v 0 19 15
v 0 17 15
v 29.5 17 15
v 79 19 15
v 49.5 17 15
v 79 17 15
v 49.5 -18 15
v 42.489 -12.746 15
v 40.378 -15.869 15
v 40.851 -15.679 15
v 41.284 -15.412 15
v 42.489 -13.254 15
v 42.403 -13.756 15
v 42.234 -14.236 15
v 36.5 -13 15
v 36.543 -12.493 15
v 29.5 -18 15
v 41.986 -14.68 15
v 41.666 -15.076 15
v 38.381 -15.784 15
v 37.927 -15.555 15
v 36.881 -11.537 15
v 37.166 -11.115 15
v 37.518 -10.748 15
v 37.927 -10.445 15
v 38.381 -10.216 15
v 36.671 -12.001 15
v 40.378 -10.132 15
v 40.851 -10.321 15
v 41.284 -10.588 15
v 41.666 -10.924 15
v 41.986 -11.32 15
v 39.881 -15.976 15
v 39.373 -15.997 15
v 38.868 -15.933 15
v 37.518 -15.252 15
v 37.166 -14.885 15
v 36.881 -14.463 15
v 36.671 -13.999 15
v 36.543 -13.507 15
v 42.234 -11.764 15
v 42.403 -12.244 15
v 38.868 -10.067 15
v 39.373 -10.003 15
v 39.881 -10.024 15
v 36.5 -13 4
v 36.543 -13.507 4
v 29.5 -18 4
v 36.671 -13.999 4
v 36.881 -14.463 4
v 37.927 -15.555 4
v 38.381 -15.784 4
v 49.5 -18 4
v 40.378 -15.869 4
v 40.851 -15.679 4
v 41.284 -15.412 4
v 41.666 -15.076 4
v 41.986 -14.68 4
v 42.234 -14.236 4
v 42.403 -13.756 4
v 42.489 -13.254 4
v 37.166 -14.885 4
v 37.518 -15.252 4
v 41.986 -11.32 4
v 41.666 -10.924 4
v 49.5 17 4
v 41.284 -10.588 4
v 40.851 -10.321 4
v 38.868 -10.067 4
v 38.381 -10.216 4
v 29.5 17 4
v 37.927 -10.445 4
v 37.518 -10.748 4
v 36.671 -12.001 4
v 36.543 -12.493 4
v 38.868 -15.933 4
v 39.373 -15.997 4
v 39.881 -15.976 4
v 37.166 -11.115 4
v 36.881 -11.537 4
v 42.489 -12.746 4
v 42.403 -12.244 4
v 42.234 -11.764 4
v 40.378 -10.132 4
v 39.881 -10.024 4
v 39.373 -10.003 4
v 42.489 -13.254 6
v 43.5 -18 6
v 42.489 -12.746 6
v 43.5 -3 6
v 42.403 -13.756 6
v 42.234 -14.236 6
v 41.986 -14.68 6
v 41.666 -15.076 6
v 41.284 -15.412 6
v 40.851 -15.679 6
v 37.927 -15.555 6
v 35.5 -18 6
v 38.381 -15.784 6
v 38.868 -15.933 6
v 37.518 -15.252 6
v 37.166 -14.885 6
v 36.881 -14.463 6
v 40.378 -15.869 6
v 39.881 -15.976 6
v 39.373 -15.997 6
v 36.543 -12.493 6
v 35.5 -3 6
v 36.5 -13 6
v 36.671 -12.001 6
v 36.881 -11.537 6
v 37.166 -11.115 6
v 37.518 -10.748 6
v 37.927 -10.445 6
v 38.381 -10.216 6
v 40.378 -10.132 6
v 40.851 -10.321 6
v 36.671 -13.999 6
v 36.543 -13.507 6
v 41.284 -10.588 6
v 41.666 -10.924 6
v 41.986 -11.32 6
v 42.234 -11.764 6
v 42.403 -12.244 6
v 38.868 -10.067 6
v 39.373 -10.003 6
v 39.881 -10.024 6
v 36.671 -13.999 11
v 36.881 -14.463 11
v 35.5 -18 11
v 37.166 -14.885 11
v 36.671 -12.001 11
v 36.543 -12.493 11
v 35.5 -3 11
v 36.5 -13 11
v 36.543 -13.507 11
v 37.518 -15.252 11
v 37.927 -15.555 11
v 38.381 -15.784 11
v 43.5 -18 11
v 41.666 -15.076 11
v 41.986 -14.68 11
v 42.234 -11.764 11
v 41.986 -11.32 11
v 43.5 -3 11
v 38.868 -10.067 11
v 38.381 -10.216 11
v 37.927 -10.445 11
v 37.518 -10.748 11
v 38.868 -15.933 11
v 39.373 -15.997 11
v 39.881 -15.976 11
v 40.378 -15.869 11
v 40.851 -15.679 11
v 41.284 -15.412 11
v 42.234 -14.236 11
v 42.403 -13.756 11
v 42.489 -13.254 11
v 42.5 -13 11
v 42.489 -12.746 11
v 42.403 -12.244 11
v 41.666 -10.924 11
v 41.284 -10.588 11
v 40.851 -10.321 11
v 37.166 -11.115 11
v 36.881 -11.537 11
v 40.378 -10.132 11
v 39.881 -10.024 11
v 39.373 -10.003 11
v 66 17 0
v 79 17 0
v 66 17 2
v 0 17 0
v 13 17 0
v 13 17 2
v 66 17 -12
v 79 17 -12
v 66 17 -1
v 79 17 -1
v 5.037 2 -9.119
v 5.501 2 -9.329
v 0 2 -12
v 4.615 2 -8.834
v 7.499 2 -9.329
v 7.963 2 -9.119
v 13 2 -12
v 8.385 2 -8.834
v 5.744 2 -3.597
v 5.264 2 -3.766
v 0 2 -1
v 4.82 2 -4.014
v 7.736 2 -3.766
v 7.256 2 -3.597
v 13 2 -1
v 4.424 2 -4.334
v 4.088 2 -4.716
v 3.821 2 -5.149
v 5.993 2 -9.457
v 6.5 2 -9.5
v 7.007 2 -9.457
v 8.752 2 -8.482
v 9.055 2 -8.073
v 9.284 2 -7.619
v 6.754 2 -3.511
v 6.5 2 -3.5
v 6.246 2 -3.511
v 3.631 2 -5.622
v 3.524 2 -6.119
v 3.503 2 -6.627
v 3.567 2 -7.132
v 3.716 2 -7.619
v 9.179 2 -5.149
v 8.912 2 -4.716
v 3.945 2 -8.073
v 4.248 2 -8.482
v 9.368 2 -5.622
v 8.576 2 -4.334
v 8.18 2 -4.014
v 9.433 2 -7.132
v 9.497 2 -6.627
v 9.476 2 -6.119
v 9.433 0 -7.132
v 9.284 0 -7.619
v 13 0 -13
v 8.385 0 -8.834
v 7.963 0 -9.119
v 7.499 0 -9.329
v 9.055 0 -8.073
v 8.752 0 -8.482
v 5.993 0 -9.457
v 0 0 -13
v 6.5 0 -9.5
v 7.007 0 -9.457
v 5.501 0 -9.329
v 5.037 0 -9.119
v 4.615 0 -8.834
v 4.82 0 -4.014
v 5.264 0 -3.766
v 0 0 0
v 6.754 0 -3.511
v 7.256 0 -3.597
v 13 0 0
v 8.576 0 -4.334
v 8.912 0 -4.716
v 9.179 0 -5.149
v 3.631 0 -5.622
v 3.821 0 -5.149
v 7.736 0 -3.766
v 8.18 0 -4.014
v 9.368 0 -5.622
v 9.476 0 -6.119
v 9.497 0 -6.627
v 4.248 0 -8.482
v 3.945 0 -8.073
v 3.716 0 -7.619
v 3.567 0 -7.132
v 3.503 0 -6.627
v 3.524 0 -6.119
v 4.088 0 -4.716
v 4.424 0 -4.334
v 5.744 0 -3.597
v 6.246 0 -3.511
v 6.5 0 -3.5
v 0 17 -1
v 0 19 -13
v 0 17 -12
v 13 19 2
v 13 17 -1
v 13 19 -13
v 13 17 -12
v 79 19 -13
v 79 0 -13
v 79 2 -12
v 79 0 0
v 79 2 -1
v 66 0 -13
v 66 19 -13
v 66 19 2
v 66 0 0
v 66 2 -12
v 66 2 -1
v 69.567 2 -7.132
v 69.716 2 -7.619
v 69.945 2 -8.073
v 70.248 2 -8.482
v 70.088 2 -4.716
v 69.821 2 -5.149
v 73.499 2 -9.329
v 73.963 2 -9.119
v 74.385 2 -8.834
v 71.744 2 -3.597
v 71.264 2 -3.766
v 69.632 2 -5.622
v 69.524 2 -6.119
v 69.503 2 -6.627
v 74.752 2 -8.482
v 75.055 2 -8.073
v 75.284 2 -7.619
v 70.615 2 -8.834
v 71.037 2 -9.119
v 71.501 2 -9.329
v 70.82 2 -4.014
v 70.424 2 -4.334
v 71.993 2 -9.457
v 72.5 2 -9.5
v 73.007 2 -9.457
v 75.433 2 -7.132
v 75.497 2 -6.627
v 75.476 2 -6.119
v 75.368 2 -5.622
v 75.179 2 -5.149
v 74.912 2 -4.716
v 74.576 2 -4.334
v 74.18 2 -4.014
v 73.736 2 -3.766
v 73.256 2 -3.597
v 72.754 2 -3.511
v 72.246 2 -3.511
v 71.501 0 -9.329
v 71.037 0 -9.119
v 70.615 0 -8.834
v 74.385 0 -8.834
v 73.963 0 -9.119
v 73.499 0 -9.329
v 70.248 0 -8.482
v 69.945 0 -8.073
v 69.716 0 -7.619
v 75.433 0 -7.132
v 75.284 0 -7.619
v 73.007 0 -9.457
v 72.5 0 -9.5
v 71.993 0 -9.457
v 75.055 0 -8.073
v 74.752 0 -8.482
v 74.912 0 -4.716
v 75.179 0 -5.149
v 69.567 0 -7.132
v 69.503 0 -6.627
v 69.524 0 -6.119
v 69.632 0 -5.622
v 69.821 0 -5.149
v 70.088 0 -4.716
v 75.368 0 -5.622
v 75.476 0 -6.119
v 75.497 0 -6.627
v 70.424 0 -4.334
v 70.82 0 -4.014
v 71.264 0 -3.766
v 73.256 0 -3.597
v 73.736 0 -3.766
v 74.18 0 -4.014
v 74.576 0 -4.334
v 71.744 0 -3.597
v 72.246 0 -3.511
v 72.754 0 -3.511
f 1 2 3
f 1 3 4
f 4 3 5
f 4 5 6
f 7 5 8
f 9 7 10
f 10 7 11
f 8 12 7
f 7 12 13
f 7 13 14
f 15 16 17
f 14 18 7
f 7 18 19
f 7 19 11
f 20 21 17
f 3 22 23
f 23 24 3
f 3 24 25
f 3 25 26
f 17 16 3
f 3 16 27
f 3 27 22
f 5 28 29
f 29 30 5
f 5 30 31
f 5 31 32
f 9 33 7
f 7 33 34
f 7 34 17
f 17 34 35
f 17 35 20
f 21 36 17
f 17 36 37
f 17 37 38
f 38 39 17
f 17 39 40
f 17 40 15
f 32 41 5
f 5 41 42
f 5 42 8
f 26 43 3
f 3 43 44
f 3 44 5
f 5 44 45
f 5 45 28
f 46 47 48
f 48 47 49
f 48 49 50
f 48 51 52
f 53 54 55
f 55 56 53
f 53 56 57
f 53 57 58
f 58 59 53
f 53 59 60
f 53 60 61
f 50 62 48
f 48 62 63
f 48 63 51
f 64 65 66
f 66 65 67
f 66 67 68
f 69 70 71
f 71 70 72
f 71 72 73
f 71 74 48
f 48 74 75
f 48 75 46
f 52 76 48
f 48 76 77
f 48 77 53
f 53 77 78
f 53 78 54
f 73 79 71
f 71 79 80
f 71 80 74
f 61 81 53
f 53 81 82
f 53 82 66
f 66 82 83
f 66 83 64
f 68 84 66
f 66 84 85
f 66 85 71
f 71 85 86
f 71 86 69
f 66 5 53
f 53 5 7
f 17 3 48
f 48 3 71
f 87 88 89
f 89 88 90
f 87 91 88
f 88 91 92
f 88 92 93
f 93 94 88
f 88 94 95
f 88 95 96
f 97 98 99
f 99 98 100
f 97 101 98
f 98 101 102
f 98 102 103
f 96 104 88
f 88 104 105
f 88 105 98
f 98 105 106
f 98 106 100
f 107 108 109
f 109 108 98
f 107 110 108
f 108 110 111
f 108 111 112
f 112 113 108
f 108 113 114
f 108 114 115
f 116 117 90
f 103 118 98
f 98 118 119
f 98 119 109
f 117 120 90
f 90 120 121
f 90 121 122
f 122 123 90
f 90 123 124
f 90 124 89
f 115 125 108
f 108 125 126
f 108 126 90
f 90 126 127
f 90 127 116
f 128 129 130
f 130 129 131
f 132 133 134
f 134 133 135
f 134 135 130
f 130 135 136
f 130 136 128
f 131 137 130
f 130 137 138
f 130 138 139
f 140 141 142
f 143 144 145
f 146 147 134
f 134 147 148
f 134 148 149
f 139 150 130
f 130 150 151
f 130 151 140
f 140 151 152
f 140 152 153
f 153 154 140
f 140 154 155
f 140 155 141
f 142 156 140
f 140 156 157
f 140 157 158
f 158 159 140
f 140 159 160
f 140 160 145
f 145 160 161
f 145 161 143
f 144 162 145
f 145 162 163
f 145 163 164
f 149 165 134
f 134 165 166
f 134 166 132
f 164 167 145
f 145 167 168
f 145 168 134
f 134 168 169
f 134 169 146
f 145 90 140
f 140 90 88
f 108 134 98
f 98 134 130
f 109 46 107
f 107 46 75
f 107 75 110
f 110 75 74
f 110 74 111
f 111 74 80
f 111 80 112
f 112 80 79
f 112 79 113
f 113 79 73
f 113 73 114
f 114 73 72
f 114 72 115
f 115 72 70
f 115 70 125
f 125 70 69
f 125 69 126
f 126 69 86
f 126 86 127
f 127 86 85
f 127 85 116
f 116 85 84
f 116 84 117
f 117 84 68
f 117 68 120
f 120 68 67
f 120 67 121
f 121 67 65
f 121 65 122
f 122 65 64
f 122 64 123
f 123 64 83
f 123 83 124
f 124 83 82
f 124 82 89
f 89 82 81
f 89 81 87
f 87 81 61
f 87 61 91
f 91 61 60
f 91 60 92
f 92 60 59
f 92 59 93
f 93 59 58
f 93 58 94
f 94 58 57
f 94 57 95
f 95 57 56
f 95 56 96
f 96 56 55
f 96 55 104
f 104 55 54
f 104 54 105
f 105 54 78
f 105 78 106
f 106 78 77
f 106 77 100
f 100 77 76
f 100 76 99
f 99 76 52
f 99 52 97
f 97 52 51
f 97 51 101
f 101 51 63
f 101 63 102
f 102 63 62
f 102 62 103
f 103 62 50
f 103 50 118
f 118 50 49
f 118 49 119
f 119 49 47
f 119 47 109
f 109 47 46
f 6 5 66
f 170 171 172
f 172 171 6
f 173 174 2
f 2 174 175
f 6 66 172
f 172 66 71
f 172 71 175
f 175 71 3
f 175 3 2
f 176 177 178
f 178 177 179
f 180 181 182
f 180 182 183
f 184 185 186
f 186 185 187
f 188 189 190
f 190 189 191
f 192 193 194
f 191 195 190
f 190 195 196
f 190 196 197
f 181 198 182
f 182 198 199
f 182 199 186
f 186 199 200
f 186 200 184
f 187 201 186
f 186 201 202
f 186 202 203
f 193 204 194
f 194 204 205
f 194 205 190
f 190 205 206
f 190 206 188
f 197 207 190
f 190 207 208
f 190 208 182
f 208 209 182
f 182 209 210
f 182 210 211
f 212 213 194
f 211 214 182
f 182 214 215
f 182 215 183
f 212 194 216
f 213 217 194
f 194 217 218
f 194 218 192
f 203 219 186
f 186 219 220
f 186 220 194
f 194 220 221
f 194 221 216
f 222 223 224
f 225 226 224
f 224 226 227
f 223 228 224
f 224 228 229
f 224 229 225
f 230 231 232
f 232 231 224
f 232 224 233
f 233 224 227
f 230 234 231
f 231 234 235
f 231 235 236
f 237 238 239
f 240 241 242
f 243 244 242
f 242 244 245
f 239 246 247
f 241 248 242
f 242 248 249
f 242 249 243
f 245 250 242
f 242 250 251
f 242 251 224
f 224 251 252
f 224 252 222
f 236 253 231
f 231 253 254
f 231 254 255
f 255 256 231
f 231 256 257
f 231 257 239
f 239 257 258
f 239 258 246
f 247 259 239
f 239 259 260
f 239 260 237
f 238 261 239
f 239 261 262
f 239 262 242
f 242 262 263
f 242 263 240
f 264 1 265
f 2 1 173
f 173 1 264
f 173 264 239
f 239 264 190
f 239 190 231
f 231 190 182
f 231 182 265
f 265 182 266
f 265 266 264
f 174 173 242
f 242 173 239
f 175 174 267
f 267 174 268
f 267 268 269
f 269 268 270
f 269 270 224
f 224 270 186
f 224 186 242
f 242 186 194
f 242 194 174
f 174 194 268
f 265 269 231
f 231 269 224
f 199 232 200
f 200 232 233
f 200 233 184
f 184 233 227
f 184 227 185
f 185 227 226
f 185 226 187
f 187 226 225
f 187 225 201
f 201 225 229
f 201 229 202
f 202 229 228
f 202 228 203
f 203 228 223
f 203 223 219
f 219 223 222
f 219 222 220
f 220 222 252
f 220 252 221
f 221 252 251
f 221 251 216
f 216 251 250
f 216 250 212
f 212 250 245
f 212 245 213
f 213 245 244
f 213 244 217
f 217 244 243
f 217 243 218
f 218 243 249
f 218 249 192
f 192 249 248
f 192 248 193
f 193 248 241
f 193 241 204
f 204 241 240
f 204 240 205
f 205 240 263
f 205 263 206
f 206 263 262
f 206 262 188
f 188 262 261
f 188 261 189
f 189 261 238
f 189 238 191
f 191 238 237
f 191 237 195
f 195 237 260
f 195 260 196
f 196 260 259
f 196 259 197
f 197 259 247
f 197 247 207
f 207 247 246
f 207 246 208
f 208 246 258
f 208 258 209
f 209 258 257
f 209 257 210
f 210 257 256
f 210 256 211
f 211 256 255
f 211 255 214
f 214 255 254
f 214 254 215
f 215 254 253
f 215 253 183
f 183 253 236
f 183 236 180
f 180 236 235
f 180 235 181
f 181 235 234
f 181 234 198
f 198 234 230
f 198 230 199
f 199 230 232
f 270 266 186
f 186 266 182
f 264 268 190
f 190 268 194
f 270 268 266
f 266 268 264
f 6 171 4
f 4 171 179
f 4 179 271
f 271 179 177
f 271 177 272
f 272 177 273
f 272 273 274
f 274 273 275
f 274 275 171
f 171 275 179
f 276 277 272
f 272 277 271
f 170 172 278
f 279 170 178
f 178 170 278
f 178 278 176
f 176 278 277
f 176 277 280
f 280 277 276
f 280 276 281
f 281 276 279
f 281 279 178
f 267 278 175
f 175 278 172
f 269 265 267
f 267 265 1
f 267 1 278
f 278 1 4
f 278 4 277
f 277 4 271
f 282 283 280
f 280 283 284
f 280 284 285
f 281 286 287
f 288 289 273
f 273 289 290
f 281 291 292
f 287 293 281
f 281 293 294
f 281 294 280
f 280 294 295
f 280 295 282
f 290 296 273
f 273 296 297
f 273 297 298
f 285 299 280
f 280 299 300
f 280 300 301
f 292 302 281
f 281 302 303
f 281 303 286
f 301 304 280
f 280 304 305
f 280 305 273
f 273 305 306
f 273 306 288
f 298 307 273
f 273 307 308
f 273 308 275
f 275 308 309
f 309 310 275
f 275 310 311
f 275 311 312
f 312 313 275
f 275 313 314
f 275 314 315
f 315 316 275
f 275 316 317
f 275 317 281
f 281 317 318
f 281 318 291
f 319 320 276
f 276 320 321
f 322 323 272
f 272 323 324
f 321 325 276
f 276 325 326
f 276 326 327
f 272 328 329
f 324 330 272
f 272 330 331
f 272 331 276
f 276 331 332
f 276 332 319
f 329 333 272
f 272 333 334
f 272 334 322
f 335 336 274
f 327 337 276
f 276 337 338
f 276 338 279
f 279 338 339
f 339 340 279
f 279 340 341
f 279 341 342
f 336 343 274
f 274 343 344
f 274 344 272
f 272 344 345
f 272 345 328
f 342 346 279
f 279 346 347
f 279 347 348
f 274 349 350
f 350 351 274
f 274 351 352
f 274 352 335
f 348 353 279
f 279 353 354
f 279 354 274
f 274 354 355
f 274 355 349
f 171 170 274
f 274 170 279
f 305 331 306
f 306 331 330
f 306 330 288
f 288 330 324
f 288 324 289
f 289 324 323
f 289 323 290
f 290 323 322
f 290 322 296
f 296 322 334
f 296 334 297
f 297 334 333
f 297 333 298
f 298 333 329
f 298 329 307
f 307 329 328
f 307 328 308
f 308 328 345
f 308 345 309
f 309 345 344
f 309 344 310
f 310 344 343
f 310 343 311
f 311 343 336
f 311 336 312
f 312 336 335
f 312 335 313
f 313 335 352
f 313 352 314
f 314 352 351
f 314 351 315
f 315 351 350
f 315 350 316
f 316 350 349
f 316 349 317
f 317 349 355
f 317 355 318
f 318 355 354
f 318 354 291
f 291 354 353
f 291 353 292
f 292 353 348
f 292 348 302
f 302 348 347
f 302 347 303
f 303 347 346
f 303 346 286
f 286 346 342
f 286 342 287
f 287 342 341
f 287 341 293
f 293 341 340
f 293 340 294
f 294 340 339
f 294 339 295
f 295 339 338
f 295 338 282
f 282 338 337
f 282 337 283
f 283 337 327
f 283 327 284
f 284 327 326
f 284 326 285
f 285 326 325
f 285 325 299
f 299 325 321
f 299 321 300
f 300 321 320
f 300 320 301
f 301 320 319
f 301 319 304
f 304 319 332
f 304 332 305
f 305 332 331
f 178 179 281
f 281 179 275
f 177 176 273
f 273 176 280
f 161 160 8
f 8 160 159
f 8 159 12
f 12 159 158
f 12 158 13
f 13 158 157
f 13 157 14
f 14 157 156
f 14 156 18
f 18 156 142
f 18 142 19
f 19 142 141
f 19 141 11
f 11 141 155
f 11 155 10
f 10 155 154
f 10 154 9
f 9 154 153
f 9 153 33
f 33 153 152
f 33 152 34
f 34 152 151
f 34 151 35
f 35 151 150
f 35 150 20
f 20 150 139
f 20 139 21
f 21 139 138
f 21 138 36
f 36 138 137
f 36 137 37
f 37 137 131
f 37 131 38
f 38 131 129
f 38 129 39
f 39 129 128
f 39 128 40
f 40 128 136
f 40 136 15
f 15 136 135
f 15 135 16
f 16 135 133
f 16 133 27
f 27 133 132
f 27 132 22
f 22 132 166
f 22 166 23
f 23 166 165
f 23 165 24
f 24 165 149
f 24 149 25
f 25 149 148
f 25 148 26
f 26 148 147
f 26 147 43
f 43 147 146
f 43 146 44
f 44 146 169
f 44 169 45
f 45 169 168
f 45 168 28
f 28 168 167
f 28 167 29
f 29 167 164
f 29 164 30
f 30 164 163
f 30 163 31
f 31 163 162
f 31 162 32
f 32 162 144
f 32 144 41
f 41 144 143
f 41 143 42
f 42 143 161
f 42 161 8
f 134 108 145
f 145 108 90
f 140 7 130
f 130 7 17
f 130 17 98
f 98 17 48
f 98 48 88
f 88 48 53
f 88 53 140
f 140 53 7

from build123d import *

# Parameters (mm, degrees)
SKETCH_2_W               = 13
SKETCH_2_H               = 13
SKETCH_2_R               = 3
EXTRUDE_1_DEPTH          = 2
EXTRUDE_1_2_DEPTH        = 2
SKETCH_3_W               = 13
SKETCH_3_H               = 1
EXTRUDE_2_DEPTH          = 15
SKETCH_4_W               = 13
SKETCH_4_H               = 12
SKETCH_4_H_2             = 1
SKETCH_4_W_2             = 53
SKETCH_4_H_3             = 13
EXTRUDE_3_DEPTH          = 2
SKETCH_5_W               = 20
SKETCH_5_H               = 11
EXTRUDE_4_DEPTH          = 37
CUT_EXTRUDE_1_DEPTH      = 84.246621553
CUT_EXTRUDE_1_DEPTH_BACK = 84.246621553
SKETCH_6_R               = 3
SKETCH_7_W               = 8
SKETCH_7_H               = 5
CUT_EXTRUDE_2_DEPTH      = 17
SKETCH_8_W               = 20
SKETCH_8_H               = 11
CUT_EXTRUDE_3_DEPTH      = 2


with BuildPart() as part:
    # ｽｹｯﾁ2 → ﾎﾞｽ - 押し出し1 (new body)
    with BuildSketch(Plane(origin=(0, 0, 0), x_dir=(1, 0, 0), z_dir=(0, 1, 0))):
        with Locations((6.5, 6.5)):
            Rectangle(SKETCH_2_W, SKETCH_2_H)
        with Locations(Location((6.5, 6.5, 0), (0, 0, 270))):
            Circle(SKETCH_2_R, mode=Mode.SUBTRACT)
    extrude(amount=EXTRUDE_1_DEPTH)



with BuildPart() as body_2:
    # ｽｹｯﾁ2 → Extrude 1 2 (new body)
    with BuildSketch(Plane(origin=(0, 0, 0), x_dir=(1, 0, 0), z_dir=(0, 1, 0))):
        with Locations((72.5, 6.5)):
            Rectangle(SKETCH_2_W, SKETCH_2_H)
        with Locations(Location((72.5, 6.5, 0), (0, 0, 90))):
            Circle(SKETCH_2_R, mode=Mode.SUBTRACT)
    extrude(amount=EXTRUDE_1_2_DEPTH)


with BuildPart() as part_1:
    add(part.part)

    add(body_2.part)  # ﾎﾞｽ - 押し出し2 merges body 2
    # ｽｹｯﾁ3 → ﾎﾞｽ - 押し出し2 (add)
    with BuildSketch(Plane(origin=(0, 2, 0), x_dir=(1, 0, 0), z_dir=(0, 1, 0))):
        with Locations((6.5, 12.5)):
            Rectangle(SKETCH_3_W, SKETCH_3_H)
        with Locations((6.5, 0.5)):
            Rectangle(SKETCH_3_W, SKETCH_3_H)
        with Locations((72.5, 0.5)):
            Rectangle(SKETCH_3_W, SKETCH_3_H)
        with Locations((72.5, 12.5)):
            Rectangle(SKETCH_3_W, SKETCH_3_H)
    extrude(amount=EXTRUDE_2_DEPTH)

    # ｽｹｯﾁ4 → ﾎﾞｽ - 押し出し3 (add)
    with BuildSketch(Plane(origin=(0, 17, 0), x_dir=(1, 0, 0), z_dir=(0, 1, 0))):
        Polygon((13, 0), (0, 0), (0, -15), (13, -15), (13, -2), align=None)
        with Locations((6.5, 7)):
            Rectangle(SKETCH_4_W, SKETCH_4_H)
        with Locations((6.5, 0.5)):
            Rectangle(SKETCH_4_W, SKETCH_4_H_2)
        with Locations((39.5, -8.5)):
            Rectangle(SKETCH_4_W_2, SKETCH_4_H_3)
        Polygon((66, -2), (66, -15), (79, -15), (79, 0), (79, 13), (66, 13), (66, 12), (66, 1), (66, 0), align=None)
    extrude(amount=EXTRUDE_3_DEPTH)

    # ｽｹｯﾁ5 → ﾎﾞｽ - 押し出し4 (add)
    with BuildSketch(Plane.XZ.offset(-17)):
        with Locations((39.5, 9.5)):
            Rectangle(SKETCH_5_W, SKETCH_5_H)
    extrude(amount=EXTRUDE_4_DEPTH)

    # ｽｹｯﾁ6 → ｶｯﾄ - 押し出し1 (cut, two sides: drawn at the far end of the back side and taken through both)
    with BuildSketch(Plane(origin=(0, 0, 4), x_dir=(-1, 0, 0), z_dir=(0, 0, -1)).offset(-CUT_EXTRUDE_1_DEPTH_BACK)):
        with Locations((-39.5, -13)):
            Circle(SKETCH_6_R)
    extrude(amount=CUT_EXTRUDE_1_DEPTH + CUT_EXTRUDE_1_DEPTH_BACK, mode=Mode.SUBTRACT)

    # ｽｹｯﾁ7 → ｶｯﾄ - 押し出し2 (cut)
    with BuildSketch(Plane.XZ.offset(20)):
        with Locations((39.5, 8.5)):
            Rectangle(SKETCH_7_W, SKETCH_7_H)
    extrude(amount=-CUT_EXTRUDE_2_DEPTH, mode=Mode.SUBTRACT)

    # ｽｹｯﾁ8 → ｶｯﾄ - 押し出し3 (cut)
    with BuildSketch(Plane.XZ.offset(20)):
        with Locations((39.5, 9.5)):
            Rectangle(SKETCH_8_W, SKETCH_8_H)
    extrude(amount=-CUT_EXTRUDE_3_DEPTH, mode=Mode.SUBTRACT)


solid = part_1.part
